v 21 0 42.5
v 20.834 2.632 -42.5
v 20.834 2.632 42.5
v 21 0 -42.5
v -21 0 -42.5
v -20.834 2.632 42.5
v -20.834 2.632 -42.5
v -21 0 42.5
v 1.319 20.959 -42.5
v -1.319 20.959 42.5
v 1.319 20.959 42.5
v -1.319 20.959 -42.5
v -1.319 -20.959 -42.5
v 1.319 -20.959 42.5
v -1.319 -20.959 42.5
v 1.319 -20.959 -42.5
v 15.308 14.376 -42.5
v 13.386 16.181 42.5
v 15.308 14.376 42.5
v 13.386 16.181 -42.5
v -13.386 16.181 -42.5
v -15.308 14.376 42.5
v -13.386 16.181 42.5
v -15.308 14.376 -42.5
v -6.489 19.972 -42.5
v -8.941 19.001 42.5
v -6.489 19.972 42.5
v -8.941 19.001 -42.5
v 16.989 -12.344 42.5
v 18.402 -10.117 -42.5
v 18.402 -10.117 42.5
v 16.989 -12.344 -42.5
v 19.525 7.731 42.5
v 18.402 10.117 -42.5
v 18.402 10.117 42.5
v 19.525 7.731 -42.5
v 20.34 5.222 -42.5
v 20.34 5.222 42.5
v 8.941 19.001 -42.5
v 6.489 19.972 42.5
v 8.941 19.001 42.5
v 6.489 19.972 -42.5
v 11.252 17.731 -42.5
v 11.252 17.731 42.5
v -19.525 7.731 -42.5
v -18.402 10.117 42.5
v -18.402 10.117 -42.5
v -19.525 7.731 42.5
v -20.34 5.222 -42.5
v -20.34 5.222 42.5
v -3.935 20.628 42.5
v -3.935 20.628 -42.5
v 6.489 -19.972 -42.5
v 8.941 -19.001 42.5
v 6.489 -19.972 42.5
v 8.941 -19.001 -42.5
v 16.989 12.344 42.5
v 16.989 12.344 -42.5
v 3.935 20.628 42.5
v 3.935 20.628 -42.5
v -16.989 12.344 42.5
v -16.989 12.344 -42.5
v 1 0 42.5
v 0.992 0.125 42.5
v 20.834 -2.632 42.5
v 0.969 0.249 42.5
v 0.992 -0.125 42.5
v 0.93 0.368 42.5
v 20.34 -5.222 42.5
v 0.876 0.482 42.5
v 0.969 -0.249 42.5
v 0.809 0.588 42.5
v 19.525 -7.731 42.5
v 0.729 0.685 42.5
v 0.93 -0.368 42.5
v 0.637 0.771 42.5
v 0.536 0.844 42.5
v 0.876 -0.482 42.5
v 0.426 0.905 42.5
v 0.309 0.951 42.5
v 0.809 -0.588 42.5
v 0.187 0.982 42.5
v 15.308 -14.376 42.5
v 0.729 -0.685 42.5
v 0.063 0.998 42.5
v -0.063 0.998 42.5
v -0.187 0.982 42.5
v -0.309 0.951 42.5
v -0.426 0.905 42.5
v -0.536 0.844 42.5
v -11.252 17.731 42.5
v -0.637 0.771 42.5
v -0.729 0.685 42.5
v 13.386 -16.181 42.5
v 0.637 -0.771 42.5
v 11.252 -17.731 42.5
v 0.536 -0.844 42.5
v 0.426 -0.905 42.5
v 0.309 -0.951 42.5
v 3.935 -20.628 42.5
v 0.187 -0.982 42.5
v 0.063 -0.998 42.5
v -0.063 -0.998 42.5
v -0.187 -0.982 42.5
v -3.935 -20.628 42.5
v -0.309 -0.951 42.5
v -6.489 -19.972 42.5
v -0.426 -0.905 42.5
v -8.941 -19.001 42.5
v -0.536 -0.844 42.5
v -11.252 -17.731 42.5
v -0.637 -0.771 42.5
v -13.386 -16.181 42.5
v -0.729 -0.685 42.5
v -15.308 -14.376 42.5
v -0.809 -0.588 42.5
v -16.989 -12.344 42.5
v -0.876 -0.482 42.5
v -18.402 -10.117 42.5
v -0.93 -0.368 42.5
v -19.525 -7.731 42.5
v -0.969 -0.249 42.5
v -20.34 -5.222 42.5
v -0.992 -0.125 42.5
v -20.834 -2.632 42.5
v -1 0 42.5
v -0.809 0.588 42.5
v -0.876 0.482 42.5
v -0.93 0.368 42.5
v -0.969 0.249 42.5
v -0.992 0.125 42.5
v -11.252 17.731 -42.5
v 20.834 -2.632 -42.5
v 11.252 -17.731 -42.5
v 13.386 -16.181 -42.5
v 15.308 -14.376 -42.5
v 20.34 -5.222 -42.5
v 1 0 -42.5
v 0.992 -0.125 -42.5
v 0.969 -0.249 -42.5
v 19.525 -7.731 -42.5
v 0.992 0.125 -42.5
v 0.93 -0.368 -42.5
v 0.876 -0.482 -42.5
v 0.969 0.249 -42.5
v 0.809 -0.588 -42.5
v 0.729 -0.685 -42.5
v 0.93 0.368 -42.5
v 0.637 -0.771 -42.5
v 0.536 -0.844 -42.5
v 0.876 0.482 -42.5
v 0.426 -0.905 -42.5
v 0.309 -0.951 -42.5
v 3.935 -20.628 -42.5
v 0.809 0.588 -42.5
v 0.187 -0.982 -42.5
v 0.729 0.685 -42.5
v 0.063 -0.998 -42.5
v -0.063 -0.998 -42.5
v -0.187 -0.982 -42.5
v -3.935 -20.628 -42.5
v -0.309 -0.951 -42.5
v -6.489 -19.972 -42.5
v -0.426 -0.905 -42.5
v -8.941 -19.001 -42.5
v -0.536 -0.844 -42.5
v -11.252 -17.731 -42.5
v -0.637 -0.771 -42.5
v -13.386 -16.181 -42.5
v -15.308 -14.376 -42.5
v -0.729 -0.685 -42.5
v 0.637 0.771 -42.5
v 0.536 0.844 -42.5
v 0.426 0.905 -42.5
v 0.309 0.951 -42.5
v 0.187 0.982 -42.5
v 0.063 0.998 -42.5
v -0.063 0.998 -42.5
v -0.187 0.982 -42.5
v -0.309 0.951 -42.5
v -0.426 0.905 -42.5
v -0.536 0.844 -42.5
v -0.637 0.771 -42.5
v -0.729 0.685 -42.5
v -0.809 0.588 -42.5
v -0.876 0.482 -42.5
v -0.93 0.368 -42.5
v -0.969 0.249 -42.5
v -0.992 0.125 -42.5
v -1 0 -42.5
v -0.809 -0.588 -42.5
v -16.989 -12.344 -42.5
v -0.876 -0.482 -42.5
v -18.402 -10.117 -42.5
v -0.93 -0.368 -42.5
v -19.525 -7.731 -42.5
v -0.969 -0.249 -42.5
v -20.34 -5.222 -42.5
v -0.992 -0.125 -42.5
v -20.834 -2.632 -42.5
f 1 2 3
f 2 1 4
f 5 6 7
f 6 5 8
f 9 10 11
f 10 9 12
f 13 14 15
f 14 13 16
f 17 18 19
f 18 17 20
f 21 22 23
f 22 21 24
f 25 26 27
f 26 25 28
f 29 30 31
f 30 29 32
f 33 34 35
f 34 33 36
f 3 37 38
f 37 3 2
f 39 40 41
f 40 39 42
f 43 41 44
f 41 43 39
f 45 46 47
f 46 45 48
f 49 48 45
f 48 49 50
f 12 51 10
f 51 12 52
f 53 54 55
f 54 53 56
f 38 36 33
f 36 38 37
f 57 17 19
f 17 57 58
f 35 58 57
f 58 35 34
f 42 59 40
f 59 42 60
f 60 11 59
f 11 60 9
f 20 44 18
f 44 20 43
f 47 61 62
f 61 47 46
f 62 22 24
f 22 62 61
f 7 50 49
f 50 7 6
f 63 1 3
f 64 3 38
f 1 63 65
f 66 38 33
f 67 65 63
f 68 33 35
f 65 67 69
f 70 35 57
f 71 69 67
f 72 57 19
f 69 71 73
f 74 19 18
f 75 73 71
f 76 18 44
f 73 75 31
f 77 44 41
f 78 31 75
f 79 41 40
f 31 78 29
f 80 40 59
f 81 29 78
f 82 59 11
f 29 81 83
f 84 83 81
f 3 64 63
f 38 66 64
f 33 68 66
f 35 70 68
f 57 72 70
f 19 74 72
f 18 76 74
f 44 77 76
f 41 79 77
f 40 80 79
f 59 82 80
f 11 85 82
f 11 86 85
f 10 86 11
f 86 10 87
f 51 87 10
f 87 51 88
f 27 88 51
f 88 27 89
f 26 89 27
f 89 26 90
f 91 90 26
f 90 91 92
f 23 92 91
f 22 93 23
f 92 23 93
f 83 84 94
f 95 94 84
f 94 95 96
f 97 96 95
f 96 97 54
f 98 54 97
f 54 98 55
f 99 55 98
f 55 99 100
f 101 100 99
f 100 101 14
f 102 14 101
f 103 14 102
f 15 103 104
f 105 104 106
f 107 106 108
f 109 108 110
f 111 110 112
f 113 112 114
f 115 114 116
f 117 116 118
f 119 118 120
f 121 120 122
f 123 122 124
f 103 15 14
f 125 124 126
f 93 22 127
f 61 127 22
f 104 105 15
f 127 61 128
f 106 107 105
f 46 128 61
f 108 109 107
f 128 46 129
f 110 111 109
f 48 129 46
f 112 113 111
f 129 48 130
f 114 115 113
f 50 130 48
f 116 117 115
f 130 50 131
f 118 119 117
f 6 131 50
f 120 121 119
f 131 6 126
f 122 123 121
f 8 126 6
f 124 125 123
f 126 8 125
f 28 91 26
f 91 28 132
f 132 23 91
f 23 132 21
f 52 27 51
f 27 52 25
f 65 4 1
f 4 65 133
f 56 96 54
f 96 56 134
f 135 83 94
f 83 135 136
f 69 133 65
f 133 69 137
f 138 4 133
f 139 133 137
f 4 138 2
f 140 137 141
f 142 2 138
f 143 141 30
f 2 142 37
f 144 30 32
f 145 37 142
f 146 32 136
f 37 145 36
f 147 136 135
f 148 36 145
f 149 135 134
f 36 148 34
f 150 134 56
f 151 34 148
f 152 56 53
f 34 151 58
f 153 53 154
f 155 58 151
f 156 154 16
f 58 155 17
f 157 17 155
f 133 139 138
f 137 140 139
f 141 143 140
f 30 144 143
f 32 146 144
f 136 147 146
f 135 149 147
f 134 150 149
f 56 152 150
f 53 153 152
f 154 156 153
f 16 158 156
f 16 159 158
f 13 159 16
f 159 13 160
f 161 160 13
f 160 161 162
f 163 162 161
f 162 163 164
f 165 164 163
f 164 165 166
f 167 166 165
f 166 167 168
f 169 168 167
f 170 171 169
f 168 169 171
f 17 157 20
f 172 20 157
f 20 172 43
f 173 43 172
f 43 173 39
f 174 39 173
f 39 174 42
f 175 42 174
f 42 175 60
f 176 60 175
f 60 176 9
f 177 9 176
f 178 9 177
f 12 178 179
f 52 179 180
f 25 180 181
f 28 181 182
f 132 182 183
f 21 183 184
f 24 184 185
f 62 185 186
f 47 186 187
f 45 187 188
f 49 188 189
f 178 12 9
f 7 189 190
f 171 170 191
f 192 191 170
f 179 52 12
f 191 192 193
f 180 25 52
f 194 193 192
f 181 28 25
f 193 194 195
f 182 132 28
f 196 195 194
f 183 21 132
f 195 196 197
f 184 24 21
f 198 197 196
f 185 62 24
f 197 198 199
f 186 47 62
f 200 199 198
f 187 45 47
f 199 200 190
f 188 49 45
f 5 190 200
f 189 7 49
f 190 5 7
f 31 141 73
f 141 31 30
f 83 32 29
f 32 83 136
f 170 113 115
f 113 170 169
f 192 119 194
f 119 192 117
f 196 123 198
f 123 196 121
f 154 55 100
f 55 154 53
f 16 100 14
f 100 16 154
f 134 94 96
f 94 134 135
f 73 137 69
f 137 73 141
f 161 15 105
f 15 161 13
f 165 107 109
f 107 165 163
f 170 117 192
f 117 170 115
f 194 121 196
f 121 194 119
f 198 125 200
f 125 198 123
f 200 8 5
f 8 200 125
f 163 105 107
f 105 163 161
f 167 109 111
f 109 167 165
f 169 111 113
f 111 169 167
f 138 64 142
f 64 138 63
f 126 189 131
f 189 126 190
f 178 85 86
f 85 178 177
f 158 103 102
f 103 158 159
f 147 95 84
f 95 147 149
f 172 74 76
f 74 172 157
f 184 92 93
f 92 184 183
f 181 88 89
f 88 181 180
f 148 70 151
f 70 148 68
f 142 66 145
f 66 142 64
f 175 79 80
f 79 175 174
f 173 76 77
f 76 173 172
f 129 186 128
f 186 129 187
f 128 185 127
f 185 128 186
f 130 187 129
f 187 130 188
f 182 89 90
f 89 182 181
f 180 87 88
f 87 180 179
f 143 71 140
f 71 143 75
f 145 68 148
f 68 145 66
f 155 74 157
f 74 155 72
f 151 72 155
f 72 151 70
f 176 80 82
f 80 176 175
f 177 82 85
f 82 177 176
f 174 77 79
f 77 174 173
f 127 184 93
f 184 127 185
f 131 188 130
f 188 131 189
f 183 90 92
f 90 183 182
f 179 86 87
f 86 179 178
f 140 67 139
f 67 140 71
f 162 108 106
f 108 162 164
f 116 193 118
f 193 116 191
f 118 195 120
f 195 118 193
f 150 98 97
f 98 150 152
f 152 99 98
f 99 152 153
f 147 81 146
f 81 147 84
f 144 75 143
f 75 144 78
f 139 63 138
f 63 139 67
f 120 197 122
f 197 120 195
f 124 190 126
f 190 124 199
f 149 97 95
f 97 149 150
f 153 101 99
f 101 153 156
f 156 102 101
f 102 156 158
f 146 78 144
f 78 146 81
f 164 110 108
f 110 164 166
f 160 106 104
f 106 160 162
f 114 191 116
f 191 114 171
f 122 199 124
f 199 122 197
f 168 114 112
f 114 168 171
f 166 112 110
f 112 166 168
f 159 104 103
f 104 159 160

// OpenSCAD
$fn = 50;


difference() {
	union() {
		translate(v = [0, 0, -42.5000000000]) {
			cylinder(h = 85, r = 21.0000000000);
		}
	}
	union() {
		translate(v = [0, 0, -100.0000000000]) {
			cylinder(h = 200, r = 1.0000000000);
		}
	}
}
